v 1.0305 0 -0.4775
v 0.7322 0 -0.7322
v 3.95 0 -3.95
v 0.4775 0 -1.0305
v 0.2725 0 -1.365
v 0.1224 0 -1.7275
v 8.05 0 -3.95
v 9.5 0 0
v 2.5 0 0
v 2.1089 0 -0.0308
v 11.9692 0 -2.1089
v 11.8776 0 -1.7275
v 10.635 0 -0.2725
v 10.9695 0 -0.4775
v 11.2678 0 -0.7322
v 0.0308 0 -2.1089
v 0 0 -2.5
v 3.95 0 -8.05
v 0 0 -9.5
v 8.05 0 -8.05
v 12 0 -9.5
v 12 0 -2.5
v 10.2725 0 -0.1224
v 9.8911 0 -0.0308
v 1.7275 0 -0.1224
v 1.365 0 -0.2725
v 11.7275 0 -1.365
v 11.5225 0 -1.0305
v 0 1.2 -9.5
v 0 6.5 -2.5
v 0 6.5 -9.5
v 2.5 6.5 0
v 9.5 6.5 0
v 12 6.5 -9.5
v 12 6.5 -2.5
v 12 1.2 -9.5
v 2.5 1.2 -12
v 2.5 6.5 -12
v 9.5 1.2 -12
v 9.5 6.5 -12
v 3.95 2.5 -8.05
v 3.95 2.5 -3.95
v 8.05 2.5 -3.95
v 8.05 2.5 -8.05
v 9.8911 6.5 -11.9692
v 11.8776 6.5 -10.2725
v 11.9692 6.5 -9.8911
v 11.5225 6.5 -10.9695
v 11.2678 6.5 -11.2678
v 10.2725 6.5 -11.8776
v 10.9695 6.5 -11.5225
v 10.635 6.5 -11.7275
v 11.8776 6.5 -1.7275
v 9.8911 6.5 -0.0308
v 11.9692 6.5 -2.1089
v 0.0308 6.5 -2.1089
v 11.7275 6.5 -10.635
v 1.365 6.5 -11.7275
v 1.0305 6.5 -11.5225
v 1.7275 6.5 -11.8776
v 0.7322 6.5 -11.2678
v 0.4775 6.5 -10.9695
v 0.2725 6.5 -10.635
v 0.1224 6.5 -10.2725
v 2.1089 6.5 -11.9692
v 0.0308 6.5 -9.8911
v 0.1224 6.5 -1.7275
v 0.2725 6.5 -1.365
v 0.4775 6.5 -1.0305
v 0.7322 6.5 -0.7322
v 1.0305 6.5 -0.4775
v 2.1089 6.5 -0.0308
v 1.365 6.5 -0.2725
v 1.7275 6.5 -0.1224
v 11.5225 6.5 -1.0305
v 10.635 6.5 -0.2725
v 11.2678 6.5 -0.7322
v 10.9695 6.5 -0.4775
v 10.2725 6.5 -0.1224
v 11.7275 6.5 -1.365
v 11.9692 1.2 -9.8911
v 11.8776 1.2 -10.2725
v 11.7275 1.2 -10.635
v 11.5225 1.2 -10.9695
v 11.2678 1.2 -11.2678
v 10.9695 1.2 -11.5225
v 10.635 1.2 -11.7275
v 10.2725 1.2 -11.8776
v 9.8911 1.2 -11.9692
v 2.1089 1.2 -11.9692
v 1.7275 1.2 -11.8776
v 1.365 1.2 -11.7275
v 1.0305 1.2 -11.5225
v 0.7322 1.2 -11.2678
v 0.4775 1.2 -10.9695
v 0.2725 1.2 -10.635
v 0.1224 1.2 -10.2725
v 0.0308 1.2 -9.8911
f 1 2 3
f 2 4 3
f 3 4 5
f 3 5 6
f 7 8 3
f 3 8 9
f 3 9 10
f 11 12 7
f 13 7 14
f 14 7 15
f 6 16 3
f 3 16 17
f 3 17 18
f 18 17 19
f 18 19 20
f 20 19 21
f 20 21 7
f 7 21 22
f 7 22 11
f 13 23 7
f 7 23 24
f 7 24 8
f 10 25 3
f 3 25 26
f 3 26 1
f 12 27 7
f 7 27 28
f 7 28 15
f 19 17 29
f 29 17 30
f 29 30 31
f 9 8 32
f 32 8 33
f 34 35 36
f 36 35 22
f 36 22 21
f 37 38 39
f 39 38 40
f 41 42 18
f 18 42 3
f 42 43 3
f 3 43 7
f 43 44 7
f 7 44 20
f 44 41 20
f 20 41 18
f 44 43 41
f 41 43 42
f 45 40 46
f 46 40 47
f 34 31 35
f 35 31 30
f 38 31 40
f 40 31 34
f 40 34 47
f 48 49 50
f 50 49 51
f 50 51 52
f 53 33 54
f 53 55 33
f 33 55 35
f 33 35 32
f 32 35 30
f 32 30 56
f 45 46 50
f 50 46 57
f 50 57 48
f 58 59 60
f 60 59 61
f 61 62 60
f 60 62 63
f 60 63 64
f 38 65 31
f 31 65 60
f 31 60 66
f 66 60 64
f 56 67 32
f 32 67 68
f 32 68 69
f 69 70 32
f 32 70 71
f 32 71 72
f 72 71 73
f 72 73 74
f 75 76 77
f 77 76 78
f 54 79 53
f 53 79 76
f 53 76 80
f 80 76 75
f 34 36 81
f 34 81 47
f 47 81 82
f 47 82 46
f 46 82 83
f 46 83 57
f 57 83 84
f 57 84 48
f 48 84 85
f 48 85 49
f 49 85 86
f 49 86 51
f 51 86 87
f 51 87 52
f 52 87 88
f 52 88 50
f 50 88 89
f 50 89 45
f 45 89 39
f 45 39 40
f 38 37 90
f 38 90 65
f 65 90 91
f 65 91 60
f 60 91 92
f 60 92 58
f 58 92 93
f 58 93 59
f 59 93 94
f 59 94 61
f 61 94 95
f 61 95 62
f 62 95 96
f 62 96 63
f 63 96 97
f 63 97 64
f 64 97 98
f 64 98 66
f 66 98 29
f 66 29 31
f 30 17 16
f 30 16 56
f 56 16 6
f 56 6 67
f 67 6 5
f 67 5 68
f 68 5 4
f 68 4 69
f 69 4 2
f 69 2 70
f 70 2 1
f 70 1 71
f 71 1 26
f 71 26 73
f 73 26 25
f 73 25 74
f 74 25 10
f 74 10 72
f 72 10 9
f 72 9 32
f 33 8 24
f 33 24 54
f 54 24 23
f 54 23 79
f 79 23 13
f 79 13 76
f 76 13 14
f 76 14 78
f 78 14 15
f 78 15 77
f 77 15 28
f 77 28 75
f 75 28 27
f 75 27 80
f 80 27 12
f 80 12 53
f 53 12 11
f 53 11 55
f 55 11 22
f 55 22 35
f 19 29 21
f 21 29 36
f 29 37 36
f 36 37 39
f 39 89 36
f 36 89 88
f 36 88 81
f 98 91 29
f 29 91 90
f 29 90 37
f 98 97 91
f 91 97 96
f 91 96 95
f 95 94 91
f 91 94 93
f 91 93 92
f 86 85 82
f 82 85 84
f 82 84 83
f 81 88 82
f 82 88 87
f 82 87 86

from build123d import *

# Parameters (mm, degrees)
SKICA1_W                 = 12
SKICA1_H                 = 12
SKICA1_W_2               = 4.1
SKICA1_H_2               = 4.1
P_IDAT_VYSUNUT_M1_DEPTH  = 2.5
SKICA2_W                 = 12
SKICA2_H                 = 12
P_IDAT_VYSUNUT_M2_DEPTH  = 4
ZAOBLIT1_R               = 2.5
SKICA3_W                 = 3
SKICA3_H                 = 1.2
ODEBRAT_VYSUNUT_M1_DEPTH = 13


with BuildPart() as part:
    # Skica1 → Přidat vysunutím1 (new body)
    with BuildSketch(Plane(origin=(0, 0, 0), x_dir=(1, 0, 0), z_dir=(0, 1, 0))):
        with Locations((6, 6)):
            Rectangle(SKICA1_W, SKICA1_H)
        with Locations((6, 6)):
            Rectangle(SKICA1_W_2, SKICA1_H_2, mode=Mode.SUBTRACT)
    extrude(amount=P_IDAT_VYSUNUT_M1_DEPTH)

    # Skica2 → Přidat vysunutím2 (add)
    with BuildSketch(Plane(origin=(0, 2.5, 0), x_dir=(1, 0, 0), z_dir=(0, 1, 0))):
        with Locations((6, 6)):
            Rectangle(SKICA2_W, SKICA2_H)
    extrude(amount=P_IDAT_VYSUNUT_M2_DEPTH)

    # Zaoblit1
    zaoblit1_edges = [part.edges().sort_by_distance(p)[0] for p in [
        (0, 3.25, -12),
        (12, 3.25, -12),
        (12, 3.25, 0),
        (0, 3.25, 0),
    ]]
    fillet(zaoblit1_edges, radius=ZAOBLIT1_R)

    # Skica3 → Odebrat vysunutím1 (cut, through all)
    with BuildSketch(Plane(origin=(12, 0, 0), x_dir=(0, 0, -1), z_dir=(1, 0, 0))):
        with Locations((11, 0.6)):
            Rectangle(SKICA3_W, SKICA3_H)
    extrude(amount=-ODEBRAT_VYSUNUT_M1_DEPTH, mode=Mode.SUBTRACT)


solid = part.part
